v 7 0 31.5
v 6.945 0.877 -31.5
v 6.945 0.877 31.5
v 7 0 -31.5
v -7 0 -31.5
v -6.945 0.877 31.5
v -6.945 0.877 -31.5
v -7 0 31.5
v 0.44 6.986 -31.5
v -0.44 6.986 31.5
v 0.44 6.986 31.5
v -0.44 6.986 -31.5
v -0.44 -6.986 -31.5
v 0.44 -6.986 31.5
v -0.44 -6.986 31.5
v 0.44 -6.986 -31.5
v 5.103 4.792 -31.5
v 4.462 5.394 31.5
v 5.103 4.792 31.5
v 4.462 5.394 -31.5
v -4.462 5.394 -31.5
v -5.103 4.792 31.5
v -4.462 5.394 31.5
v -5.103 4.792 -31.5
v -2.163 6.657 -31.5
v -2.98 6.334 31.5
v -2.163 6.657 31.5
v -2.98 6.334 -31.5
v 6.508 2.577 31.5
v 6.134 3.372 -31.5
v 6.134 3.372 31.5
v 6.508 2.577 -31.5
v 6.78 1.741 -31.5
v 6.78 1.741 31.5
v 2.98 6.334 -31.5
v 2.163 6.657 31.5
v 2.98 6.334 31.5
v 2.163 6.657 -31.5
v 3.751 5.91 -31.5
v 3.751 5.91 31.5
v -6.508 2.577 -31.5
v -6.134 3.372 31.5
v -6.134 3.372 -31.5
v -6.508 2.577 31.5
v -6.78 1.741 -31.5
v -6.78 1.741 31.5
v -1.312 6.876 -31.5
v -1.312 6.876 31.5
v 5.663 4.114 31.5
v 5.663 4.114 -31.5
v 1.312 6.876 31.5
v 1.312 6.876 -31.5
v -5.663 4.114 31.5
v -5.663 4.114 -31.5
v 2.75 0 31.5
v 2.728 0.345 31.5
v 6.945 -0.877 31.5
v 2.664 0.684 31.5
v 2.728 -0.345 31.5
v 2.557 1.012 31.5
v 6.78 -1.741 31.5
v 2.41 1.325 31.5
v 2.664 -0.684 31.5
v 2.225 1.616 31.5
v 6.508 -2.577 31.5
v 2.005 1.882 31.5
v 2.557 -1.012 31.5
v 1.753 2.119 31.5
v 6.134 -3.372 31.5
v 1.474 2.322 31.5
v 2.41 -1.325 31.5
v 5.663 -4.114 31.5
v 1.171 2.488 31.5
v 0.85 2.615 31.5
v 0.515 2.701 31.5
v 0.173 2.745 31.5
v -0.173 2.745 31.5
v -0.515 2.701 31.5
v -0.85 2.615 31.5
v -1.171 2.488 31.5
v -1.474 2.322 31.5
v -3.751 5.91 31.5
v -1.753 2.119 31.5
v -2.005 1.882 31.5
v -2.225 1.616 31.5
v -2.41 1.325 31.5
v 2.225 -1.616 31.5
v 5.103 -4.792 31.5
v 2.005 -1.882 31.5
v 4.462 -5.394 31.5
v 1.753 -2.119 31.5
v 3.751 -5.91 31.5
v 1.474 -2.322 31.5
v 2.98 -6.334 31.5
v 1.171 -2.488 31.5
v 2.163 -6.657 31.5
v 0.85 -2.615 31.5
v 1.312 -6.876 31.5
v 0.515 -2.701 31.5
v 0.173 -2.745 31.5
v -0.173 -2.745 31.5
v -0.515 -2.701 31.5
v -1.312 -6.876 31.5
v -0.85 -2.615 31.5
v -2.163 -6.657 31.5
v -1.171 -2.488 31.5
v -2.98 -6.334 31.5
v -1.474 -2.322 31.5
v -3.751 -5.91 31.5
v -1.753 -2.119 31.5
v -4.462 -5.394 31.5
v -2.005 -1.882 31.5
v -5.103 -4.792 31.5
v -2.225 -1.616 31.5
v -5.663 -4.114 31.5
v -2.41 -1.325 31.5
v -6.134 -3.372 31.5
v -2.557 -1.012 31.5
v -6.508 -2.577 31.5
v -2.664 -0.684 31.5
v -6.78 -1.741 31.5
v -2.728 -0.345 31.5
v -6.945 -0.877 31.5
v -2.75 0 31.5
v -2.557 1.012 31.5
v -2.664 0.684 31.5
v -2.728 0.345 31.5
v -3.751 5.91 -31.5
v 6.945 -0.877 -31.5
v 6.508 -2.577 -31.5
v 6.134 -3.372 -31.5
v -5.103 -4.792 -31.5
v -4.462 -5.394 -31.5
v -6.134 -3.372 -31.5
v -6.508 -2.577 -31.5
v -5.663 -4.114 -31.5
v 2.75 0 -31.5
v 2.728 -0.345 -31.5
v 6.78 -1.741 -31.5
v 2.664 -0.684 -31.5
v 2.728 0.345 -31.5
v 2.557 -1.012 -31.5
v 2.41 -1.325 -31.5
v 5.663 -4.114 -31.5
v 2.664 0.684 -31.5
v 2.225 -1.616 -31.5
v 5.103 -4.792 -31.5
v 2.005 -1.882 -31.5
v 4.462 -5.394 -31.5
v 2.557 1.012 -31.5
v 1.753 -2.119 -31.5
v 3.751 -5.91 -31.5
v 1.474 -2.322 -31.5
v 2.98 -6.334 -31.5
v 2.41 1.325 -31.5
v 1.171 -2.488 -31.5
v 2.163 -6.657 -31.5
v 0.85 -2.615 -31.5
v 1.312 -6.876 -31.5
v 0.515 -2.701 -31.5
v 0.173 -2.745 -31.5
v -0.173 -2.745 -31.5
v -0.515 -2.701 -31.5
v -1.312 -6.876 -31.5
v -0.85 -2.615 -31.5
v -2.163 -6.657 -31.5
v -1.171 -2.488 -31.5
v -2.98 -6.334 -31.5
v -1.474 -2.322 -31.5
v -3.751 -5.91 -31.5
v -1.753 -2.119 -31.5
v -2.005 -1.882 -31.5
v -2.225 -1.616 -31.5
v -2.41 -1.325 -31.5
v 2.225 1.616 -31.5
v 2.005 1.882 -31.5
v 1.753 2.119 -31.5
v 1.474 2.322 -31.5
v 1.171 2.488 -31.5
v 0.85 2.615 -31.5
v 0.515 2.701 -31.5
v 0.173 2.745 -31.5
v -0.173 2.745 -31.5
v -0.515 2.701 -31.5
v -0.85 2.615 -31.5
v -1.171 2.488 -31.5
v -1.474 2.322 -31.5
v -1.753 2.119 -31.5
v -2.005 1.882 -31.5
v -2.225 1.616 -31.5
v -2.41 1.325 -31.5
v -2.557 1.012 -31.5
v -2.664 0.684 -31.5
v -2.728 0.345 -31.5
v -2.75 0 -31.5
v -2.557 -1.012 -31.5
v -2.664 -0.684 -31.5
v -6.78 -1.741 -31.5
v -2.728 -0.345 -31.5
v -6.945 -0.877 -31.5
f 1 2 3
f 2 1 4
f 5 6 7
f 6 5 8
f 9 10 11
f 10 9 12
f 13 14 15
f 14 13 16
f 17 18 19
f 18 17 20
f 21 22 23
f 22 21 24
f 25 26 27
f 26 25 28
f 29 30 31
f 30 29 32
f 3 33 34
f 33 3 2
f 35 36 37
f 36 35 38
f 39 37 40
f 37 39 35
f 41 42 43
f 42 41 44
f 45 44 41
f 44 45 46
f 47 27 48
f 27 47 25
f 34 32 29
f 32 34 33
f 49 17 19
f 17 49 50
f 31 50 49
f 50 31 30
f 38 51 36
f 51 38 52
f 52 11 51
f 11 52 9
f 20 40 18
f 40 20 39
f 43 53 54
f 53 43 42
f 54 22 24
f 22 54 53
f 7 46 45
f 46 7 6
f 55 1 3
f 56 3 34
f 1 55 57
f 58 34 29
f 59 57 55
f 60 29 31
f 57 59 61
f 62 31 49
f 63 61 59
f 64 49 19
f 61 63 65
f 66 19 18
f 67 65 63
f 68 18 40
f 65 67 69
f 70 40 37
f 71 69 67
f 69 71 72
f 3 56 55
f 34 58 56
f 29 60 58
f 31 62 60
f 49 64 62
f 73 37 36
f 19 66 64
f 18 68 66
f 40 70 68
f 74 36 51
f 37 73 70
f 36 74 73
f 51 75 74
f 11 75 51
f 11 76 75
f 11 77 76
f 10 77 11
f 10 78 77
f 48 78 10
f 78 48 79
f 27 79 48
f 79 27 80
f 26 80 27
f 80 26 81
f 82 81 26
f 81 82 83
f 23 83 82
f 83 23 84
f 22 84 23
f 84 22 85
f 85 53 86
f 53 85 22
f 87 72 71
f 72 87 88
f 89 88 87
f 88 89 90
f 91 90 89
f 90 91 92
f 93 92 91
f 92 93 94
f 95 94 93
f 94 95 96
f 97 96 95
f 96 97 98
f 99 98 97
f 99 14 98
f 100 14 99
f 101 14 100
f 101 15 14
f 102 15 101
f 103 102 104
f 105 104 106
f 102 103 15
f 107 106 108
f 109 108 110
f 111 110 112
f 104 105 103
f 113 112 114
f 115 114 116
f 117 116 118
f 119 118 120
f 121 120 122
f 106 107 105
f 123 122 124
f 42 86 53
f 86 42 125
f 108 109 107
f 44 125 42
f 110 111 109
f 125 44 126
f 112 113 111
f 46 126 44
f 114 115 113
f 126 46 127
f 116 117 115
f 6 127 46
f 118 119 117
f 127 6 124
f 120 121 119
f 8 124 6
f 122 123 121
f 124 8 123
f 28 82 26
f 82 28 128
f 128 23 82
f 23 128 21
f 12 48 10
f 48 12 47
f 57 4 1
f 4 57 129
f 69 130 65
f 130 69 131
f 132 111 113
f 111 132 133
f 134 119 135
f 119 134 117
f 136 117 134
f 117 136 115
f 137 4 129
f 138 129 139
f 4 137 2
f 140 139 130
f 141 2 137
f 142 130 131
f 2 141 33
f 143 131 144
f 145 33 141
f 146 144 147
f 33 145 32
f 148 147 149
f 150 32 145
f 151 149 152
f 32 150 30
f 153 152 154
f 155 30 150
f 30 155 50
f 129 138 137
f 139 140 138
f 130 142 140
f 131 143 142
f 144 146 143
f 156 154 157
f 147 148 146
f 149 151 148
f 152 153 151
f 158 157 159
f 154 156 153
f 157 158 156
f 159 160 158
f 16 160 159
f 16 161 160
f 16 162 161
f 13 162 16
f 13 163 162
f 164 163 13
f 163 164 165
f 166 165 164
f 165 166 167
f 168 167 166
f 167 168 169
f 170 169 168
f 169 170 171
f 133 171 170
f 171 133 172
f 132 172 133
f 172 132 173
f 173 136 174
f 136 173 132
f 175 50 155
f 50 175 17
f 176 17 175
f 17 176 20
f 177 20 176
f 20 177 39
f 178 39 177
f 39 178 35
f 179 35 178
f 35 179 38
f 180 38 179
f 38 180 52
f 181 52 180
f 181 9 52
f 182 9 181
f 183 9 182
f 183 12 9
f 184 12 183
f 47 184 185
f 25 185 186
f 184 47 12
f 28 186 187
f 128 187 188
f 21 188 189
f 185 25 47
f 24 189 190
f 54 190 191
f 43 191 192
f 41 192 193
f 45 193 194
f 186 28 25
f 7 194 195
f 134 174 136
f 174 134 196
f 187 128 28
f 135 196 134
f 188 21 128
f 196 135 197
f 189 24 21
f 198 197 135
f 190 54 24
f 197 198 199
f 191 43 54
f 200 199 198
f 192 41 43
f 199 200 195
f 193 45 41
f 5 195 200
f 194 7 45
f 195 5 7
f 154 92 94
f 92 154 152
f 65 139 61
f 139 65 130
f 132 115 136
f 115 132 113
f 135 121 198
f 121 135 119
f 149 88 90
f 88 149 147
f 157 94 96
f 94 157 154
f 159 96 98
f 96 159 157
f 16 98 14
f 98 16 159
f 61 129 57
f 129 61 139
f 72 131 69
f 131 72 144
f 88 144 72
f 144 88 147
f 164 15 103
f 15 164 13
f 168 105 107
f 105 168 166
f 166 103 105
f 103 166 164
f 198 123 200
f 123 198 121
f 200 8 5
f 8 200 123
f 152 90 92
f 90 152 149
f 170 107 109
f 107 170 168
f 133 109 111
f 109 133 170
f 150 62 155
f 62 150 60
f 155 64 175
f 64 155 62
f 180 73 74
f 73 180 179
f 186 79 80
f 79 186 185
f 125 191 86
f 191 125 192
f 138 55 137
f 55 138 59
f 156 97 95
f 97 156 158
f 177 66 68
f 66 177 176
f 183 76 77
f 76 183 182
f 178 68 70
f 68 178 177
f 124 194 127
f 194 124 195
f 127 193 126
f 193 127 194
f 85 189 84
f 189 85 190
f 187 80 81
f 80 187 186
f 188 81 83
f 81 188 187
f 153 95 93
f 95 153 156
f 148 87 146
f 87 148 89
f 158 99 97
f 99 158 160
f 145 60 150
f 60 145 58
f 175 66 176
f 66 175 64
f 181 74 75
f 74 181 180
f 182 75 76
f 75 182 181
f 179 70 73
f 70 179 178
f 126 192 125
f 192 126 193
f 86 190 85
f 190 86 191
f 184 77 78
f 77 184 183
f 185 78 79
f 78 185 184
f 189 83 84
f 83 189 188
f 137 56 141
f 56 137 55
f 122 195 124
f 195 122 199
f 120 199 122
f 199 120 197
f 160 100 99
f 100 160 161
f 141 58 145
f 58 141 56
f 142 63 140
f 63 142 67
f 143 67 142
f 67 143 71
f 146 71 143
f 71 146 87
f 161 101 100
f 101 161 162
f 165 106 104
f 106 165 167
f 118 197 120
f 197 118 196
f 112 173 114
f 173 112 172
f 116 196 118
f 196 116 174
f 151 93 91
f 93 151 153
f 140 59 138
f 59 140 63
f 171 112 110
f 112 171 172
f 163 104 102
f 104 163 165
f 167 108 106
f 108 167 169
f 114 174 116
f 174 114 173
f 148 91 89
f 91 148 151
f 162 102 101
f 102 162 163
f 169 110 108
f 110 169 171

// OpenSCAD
$fn = 50;


difference() {
	union() {
		translate(v = [0, 0, -31.5000000000]) {
			cylinder(h = 63, r = 7.0000000000);
		}
	}
	union() {
		translate(v = [0, 0, -100.0000000000]) {
			cylinder(h = 200, r = 2.7500000000);
		}
	}
}
